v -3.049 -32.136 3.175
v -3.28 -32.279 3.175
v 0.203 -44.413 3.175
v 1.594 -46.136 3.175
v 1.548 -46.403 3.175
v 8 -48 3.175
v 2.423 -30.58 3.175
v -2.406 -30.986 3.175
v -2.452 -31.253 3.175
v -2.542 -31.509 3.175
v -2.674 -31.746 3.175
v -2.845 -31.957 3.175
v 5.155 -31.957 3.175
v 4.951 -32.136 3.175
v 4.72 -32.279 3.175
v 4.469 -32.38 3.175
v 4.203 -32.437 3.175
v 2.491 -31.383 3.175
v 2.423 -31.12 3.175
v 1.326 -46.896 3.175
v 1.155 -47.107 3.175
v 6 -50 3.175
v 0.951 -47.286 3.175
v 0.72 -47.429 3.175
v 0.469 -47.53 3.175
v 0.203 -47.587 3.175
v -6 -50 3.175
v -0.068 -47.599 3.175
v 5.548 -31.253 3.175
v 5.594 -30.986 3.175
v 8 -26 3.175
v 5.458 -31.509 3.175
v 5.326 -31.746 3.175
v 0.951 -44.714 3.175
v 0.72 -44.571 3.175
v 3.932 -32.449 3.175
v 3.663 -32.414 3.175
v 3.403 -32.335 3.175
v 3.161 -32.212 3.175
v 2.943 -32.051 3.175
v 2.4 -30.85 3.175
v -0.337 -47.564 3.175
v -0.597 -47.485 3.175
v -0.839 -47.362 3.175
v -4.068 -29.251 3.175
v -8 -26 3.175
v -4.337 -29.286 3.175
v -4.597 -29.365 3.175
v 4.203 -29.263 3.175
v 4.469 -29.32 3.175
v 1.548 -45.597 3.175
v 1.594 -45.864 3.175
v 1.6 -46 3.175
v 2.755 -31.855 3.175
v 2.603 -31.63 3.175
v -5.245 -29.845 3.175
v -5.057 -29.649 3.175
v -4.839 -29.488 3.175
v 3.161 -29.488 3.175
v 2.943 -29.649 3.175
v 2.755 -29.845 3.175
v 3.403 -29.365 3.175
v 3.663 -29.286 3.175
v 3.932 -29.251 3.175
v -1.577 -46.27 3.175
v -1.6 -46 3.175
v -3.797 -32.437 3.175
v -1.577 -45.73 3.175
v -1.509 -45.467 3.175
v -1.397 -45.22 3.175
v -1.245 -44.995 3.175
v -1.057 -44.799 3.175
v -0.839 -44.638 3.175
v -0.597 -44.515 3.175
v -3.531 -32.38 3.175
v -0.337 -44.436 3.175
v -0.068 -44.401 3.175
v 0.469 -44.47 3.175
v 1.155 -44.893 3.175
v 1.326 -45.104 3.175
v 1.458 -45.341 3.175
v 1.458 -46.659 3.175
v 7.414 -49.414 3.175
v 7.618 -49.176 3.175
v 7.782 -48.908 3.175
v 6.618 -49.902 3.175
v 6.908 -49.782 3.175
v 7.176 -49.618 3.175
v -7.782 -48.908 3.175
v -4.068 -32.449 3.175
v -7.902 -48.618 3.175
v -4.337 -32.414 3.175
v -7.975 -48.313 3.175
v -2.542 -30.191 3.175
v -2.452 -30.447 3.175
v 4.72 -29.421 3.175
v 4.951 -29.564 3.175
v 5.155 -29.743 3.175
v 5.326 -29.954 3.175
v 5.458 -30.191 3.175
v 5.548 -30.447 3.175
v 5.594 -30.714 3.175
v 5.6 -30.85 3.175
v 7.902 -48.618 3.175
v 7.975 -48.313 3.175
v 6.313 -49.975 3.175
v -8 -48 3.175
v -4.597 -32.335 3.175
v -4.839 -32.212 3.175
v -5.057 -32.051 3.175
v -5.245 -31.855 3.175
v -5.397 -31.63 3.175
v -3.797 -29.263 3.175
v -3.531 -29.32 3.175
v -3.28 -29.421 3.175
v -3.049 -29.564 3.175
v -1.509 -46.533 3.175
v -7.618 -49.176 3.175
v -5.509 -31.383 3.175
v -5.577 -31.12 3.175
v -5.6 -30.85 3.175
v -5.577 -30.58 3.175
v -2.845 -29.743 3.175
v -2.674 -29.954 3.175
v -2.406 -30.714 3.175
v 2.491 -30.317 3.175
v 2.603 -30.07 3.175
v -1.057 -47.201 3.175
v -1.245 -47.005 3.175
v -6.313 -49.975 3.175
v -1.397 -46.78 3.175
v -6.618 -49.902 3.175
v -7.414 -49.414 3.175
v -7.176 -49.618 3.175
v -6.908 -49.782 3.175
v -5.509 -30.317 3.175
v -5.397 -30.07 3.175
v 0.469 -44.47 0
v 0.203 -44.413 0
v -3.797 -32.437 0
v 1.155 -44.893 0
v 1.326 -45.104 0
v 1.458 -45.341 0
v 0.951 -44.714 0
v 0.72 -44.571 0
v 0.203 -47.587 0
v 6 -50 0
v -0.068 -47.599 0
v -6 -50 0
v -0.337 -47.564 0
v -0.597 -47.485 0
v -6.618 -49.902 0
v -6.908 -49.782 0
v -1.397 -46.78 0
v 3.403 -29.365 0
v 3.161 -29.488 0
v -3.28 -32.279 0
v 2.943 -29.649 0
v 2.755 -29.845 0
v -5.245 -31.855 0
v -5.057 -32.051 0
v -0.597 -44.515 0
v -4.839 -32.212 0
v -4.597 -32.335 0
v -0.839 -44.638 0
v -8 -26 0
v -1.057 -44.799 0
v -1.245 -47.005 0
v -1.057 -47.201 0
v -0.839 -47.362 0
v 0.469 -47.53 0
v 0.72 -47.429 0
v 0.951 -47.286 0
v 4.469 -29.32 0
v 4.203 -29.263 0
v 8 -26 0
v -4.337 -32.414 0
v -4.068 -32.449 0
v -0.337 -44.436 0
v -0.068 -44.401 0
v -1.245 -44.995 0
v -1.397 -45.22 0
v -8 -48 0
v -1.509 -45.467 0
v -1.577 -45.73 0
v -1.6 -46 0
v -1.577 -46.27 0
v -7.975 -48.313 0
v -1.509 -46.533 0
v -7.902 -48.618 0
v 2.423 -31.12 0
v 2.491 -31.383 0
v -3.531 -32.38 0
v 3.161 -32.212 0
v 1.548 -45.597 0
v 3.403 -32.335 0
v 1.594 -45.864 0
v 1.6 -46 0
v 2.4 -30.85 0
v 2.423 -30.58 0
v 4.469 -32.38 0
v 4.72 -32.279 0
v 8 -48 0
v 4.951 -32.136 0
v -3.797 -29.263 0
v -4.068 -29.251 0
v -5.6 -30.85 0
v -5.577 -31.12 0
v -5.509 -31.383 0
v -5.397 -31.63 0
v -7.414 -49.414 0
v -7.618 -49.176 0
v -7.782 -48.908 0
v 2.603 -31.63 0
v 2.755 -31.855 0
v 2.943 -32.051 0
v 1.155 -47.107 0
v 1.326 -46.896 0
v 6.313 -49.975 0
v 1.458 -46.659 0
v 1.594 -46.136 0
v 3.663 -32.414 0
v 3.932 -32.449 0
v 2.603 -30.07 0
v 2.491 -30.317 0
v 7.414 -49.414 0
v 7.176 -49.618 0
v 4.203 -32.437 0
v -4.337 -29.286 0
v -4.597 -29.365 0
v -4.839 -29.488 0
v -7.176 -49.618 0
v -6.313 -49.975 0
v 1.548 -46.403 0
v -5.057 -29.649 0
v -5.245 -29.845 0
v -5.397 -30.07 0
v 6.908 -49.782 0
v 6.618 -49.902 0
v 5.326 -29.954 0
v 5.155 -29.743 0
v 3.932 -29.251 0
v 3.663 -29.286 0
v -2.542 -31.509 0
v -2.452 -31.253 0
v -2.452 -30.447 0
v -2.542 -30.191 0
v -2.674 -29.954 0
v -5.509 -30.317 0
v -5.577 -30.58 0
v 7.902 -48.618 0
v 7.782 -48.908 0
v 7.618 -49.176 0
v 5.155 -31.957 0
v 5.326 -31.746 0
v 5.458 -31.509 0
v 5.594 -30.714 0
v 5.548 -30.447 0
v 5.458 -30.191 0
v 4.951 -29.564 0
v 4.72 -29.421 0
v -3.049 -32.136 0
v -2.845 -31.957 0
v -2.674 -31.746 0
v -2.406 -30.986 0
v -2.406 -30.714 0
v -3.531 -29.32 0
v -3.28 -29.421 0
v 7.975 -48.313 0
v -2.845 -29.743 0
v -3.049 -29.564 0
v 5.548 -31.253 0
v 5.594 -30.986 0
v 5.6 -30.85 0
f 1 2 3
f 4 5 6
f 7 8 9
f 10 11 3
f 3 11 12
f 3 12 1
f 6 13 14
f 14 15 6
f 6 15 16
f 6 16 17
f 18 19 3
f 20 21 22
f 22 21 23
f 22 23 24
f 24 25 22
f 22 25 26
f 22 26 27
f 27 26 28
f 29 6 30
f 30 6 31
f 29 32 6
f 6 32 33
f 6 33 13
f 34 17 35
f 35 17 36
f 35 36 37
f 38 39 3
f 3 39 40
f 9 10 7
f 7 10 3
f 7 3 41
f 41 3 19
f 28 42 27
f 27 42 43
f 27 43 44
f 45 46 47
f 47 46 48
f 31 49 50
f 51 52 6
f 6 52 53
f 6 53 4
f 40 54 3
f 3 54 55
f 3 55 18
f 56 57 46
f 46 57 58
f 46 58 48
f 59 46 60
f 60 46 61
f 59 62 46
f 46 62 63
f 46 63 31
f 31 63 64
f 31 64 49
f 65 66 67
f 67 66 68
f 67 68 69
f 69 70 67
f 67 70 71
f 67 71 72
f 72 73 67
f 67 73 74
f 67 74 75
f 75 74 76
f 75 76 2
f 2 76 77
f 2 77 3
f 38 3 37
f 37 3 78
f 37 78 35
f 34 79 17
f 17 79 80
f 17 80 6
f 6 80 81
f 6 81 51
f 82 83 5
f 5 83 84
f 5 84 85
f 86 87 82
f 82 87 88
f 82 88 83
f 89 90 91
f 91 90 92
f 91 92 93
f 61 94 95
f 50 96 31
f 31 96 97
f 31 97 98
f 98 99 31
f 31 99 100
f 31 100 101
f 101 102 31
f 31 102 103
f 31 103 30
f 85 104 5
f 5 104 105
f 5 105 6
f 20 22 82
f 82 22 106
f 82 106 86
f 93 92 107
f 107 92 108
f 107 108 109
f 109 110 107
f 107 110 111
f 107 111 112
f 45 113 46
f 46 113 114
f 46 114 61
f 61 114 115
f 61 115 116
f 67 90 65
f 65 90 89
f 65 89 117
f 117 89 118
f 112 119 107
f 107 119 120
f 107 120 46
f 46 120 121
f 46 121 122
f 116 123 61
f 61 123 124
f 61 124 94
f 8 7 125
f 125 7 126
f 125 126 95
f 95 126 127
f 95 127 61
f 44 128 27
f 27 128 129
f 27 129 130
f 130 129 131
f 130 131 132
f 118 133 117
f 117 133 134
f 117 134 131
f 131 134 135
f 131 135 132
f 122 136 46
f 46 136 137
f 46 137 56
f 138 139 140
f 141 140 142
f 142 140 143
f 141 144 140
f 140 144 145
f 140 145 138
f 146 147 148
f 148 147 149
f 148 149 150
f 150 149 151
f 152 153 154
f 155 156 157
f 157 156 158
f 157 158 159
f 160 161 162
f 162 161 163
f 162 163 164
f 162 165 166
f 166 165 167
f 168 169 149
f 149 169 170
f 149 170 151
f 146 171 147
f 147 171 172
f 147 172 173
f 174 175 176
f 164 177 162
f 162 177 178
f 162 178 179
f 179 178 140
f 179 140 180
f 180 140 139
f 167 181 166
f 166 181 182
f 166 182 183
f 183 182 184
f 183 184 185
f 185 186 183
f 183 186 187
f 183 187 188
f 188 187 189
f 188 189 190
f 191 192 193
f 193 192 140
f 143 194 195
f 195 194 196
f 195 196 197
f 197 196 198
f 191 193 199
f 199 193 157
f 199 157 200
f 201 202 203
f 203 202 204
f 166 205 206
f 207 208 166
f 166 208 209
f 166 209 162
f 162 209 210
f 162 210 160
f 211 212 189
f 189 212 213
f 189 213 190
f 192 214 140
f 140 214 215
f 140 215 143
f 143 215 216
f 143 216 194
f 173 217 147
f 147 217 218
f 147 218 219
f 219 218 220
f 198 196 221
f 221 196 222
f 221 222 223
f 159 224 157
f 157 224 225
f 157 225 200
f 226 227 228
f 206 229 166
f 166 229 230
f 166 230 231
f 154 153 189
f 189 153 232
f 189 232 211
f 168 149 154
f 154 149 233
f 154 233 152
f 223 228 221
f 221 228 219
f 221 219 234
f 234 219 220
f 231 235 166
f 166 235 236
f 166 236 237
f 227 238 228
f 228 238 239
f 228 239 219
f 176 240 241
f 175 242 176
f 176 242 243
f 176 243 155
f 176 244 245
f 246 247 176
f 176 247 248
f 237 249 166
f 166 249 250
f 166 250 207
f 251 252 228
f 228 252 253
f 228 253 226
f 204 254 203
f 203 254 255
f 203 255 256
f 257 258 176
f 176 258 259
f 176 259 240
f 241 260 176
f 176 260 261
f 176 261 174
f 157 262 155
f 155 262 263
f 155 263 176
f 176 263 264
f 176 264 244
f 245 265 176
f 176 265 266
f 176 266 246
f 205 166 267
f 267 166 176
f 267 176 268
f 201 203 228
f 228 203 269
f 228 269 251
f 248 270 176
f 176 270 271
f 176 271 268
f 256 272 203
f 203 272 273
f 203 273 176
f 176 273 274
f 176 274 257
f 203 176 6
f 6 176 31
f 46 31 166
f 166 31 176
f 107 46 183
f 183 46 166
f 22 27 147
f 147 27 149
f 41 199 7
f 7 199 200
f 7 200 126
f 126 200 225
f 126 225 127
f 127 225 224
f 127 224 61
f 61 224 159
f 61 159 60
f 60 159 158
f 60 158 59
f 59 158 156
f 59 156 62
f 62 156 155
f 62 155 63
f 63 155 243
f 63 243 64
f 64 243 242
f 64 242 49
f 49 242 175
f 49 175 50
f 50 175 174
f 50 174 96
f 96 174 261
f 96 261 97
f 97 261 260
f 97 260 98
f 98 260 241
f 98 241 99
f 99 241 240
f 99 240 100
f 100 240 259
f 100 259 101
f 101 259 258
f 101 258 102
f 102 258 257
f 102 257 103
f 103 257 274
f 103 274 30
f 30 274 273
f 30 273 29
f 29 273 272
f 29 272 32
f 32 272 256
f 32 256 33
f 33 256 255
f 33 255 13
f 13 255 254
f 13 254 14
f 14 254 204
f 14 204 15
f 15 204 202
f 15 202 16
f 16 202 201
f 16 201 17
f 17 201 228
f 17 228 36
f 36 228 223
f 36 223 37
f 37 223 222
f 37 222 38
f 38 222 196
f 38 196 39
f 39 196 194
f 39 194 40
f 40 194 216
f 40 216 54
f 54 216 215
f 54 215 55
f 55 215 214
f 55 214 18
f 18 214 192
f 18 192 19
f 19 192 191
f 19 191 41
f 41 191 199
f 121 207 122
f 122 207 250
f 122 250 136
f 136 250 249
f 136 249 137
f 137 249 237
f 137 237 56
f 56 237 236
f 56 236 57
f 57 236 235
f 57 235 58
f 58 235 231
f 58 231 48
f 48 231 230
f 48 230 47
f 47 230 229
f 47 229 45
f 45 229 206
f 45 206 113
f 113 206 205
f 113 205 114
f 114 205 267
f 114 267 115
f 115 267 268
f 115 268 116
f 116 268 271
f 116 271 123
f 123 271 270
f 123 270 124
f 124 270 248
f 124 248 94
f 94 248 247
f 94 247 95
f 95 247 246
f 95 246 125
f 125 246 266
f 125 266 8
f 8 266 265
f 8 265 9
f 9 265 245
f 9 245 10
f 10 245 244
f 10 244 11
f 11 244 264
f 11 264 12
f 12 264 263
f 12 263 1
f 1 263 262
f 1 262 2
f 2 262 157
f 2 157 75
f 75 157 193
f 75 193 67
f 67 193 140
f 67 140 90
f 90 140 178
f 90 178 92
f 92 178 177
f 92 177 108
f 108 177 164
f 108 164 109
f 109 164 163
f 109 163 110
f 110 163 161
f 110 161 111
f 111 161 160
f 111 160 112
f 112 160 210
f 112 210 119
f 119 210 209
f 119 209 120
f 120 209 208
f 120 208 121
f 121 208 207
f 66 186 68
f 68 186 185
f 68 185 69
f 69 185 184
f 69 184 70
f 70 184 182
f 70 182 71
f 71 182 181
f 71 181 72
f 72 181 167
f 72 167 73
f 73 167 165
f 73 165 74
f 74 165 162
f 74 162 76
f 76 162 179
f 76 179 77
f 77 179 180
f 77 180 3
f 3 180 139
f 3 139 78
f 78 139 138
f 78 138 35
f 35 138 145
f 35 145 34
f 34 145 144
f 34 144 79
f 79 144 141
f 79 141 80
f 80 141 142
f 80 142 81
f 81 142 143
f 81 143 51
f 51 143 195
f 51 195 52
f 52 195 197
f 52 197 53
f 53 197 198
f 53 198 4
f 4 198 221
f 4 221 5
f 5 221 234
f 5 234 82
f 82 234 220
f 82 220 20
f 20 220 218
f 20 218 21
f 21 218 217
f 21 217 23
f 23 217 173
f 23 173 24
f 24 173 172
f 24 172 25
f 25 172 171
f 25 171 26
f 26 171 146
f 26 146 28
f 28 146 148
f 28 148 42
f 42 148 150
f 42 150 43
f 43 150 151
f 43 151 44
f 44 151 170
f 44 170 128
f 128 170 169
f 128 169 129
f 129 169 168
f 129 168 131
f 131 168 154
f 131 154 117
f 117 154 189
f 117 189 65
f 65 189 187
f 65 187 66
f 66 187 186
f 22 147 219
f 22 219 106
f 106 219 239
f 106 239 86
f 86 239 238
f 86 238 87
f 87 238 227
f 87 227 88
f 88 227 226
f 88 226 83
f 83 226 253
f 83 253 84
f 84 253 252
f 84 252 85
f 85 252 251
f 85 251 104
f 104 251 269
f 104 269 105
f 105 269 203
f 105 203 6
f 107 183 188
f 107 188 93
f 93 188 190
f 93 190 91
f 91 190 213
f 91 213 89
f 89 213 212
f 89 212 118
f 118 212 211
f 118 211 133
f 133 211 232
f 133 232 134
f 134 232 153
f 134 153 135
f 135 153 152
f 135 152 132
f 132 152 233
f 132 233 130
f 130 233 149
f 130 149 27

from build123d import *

# Parameters (mm, degrees)
SKETCH1_W           = 16
SKETCH1_H           = 24
SKETCH1_R           = 1.6
BOSS_EXTRUDE1_DEPTH = 3.175
FILLET1_R           = 2


with BuildPart() as part:
    # Sketch1 → Boss-Extrude1 (new body)
    with BuildSketch(Plane.XY):
        with Locations((0, -38)):
            Rectangle(SKETCH1_W, SKETCH1_H)
        with Locations((4, -30.85)):
            Circle(SKETCH1_R, mode=Mode.SUBTRACT)
        with Locations(Location((-4, -30.85, 0), (0, 0, 180))):
            Circle(SKETCH1_R, mode=Mode.SUBTRACT)
        with Locations((0, -46)):
            Circle(SKETCH1_R, mode=Mode.SUBTRACT)
    extrude(amount=BOSS_EXTRUDE1_DEPTH)

    # Fillet1
    fillet1_edges = [part.edges().sort_by_distance(p)[0] for p in [
        (8, -50, 1.5875),
        (-8, -50, 1.5875),
    ]]
    fillet(fillet1_edges, radius=FILLET1_R)


solid = part.part
